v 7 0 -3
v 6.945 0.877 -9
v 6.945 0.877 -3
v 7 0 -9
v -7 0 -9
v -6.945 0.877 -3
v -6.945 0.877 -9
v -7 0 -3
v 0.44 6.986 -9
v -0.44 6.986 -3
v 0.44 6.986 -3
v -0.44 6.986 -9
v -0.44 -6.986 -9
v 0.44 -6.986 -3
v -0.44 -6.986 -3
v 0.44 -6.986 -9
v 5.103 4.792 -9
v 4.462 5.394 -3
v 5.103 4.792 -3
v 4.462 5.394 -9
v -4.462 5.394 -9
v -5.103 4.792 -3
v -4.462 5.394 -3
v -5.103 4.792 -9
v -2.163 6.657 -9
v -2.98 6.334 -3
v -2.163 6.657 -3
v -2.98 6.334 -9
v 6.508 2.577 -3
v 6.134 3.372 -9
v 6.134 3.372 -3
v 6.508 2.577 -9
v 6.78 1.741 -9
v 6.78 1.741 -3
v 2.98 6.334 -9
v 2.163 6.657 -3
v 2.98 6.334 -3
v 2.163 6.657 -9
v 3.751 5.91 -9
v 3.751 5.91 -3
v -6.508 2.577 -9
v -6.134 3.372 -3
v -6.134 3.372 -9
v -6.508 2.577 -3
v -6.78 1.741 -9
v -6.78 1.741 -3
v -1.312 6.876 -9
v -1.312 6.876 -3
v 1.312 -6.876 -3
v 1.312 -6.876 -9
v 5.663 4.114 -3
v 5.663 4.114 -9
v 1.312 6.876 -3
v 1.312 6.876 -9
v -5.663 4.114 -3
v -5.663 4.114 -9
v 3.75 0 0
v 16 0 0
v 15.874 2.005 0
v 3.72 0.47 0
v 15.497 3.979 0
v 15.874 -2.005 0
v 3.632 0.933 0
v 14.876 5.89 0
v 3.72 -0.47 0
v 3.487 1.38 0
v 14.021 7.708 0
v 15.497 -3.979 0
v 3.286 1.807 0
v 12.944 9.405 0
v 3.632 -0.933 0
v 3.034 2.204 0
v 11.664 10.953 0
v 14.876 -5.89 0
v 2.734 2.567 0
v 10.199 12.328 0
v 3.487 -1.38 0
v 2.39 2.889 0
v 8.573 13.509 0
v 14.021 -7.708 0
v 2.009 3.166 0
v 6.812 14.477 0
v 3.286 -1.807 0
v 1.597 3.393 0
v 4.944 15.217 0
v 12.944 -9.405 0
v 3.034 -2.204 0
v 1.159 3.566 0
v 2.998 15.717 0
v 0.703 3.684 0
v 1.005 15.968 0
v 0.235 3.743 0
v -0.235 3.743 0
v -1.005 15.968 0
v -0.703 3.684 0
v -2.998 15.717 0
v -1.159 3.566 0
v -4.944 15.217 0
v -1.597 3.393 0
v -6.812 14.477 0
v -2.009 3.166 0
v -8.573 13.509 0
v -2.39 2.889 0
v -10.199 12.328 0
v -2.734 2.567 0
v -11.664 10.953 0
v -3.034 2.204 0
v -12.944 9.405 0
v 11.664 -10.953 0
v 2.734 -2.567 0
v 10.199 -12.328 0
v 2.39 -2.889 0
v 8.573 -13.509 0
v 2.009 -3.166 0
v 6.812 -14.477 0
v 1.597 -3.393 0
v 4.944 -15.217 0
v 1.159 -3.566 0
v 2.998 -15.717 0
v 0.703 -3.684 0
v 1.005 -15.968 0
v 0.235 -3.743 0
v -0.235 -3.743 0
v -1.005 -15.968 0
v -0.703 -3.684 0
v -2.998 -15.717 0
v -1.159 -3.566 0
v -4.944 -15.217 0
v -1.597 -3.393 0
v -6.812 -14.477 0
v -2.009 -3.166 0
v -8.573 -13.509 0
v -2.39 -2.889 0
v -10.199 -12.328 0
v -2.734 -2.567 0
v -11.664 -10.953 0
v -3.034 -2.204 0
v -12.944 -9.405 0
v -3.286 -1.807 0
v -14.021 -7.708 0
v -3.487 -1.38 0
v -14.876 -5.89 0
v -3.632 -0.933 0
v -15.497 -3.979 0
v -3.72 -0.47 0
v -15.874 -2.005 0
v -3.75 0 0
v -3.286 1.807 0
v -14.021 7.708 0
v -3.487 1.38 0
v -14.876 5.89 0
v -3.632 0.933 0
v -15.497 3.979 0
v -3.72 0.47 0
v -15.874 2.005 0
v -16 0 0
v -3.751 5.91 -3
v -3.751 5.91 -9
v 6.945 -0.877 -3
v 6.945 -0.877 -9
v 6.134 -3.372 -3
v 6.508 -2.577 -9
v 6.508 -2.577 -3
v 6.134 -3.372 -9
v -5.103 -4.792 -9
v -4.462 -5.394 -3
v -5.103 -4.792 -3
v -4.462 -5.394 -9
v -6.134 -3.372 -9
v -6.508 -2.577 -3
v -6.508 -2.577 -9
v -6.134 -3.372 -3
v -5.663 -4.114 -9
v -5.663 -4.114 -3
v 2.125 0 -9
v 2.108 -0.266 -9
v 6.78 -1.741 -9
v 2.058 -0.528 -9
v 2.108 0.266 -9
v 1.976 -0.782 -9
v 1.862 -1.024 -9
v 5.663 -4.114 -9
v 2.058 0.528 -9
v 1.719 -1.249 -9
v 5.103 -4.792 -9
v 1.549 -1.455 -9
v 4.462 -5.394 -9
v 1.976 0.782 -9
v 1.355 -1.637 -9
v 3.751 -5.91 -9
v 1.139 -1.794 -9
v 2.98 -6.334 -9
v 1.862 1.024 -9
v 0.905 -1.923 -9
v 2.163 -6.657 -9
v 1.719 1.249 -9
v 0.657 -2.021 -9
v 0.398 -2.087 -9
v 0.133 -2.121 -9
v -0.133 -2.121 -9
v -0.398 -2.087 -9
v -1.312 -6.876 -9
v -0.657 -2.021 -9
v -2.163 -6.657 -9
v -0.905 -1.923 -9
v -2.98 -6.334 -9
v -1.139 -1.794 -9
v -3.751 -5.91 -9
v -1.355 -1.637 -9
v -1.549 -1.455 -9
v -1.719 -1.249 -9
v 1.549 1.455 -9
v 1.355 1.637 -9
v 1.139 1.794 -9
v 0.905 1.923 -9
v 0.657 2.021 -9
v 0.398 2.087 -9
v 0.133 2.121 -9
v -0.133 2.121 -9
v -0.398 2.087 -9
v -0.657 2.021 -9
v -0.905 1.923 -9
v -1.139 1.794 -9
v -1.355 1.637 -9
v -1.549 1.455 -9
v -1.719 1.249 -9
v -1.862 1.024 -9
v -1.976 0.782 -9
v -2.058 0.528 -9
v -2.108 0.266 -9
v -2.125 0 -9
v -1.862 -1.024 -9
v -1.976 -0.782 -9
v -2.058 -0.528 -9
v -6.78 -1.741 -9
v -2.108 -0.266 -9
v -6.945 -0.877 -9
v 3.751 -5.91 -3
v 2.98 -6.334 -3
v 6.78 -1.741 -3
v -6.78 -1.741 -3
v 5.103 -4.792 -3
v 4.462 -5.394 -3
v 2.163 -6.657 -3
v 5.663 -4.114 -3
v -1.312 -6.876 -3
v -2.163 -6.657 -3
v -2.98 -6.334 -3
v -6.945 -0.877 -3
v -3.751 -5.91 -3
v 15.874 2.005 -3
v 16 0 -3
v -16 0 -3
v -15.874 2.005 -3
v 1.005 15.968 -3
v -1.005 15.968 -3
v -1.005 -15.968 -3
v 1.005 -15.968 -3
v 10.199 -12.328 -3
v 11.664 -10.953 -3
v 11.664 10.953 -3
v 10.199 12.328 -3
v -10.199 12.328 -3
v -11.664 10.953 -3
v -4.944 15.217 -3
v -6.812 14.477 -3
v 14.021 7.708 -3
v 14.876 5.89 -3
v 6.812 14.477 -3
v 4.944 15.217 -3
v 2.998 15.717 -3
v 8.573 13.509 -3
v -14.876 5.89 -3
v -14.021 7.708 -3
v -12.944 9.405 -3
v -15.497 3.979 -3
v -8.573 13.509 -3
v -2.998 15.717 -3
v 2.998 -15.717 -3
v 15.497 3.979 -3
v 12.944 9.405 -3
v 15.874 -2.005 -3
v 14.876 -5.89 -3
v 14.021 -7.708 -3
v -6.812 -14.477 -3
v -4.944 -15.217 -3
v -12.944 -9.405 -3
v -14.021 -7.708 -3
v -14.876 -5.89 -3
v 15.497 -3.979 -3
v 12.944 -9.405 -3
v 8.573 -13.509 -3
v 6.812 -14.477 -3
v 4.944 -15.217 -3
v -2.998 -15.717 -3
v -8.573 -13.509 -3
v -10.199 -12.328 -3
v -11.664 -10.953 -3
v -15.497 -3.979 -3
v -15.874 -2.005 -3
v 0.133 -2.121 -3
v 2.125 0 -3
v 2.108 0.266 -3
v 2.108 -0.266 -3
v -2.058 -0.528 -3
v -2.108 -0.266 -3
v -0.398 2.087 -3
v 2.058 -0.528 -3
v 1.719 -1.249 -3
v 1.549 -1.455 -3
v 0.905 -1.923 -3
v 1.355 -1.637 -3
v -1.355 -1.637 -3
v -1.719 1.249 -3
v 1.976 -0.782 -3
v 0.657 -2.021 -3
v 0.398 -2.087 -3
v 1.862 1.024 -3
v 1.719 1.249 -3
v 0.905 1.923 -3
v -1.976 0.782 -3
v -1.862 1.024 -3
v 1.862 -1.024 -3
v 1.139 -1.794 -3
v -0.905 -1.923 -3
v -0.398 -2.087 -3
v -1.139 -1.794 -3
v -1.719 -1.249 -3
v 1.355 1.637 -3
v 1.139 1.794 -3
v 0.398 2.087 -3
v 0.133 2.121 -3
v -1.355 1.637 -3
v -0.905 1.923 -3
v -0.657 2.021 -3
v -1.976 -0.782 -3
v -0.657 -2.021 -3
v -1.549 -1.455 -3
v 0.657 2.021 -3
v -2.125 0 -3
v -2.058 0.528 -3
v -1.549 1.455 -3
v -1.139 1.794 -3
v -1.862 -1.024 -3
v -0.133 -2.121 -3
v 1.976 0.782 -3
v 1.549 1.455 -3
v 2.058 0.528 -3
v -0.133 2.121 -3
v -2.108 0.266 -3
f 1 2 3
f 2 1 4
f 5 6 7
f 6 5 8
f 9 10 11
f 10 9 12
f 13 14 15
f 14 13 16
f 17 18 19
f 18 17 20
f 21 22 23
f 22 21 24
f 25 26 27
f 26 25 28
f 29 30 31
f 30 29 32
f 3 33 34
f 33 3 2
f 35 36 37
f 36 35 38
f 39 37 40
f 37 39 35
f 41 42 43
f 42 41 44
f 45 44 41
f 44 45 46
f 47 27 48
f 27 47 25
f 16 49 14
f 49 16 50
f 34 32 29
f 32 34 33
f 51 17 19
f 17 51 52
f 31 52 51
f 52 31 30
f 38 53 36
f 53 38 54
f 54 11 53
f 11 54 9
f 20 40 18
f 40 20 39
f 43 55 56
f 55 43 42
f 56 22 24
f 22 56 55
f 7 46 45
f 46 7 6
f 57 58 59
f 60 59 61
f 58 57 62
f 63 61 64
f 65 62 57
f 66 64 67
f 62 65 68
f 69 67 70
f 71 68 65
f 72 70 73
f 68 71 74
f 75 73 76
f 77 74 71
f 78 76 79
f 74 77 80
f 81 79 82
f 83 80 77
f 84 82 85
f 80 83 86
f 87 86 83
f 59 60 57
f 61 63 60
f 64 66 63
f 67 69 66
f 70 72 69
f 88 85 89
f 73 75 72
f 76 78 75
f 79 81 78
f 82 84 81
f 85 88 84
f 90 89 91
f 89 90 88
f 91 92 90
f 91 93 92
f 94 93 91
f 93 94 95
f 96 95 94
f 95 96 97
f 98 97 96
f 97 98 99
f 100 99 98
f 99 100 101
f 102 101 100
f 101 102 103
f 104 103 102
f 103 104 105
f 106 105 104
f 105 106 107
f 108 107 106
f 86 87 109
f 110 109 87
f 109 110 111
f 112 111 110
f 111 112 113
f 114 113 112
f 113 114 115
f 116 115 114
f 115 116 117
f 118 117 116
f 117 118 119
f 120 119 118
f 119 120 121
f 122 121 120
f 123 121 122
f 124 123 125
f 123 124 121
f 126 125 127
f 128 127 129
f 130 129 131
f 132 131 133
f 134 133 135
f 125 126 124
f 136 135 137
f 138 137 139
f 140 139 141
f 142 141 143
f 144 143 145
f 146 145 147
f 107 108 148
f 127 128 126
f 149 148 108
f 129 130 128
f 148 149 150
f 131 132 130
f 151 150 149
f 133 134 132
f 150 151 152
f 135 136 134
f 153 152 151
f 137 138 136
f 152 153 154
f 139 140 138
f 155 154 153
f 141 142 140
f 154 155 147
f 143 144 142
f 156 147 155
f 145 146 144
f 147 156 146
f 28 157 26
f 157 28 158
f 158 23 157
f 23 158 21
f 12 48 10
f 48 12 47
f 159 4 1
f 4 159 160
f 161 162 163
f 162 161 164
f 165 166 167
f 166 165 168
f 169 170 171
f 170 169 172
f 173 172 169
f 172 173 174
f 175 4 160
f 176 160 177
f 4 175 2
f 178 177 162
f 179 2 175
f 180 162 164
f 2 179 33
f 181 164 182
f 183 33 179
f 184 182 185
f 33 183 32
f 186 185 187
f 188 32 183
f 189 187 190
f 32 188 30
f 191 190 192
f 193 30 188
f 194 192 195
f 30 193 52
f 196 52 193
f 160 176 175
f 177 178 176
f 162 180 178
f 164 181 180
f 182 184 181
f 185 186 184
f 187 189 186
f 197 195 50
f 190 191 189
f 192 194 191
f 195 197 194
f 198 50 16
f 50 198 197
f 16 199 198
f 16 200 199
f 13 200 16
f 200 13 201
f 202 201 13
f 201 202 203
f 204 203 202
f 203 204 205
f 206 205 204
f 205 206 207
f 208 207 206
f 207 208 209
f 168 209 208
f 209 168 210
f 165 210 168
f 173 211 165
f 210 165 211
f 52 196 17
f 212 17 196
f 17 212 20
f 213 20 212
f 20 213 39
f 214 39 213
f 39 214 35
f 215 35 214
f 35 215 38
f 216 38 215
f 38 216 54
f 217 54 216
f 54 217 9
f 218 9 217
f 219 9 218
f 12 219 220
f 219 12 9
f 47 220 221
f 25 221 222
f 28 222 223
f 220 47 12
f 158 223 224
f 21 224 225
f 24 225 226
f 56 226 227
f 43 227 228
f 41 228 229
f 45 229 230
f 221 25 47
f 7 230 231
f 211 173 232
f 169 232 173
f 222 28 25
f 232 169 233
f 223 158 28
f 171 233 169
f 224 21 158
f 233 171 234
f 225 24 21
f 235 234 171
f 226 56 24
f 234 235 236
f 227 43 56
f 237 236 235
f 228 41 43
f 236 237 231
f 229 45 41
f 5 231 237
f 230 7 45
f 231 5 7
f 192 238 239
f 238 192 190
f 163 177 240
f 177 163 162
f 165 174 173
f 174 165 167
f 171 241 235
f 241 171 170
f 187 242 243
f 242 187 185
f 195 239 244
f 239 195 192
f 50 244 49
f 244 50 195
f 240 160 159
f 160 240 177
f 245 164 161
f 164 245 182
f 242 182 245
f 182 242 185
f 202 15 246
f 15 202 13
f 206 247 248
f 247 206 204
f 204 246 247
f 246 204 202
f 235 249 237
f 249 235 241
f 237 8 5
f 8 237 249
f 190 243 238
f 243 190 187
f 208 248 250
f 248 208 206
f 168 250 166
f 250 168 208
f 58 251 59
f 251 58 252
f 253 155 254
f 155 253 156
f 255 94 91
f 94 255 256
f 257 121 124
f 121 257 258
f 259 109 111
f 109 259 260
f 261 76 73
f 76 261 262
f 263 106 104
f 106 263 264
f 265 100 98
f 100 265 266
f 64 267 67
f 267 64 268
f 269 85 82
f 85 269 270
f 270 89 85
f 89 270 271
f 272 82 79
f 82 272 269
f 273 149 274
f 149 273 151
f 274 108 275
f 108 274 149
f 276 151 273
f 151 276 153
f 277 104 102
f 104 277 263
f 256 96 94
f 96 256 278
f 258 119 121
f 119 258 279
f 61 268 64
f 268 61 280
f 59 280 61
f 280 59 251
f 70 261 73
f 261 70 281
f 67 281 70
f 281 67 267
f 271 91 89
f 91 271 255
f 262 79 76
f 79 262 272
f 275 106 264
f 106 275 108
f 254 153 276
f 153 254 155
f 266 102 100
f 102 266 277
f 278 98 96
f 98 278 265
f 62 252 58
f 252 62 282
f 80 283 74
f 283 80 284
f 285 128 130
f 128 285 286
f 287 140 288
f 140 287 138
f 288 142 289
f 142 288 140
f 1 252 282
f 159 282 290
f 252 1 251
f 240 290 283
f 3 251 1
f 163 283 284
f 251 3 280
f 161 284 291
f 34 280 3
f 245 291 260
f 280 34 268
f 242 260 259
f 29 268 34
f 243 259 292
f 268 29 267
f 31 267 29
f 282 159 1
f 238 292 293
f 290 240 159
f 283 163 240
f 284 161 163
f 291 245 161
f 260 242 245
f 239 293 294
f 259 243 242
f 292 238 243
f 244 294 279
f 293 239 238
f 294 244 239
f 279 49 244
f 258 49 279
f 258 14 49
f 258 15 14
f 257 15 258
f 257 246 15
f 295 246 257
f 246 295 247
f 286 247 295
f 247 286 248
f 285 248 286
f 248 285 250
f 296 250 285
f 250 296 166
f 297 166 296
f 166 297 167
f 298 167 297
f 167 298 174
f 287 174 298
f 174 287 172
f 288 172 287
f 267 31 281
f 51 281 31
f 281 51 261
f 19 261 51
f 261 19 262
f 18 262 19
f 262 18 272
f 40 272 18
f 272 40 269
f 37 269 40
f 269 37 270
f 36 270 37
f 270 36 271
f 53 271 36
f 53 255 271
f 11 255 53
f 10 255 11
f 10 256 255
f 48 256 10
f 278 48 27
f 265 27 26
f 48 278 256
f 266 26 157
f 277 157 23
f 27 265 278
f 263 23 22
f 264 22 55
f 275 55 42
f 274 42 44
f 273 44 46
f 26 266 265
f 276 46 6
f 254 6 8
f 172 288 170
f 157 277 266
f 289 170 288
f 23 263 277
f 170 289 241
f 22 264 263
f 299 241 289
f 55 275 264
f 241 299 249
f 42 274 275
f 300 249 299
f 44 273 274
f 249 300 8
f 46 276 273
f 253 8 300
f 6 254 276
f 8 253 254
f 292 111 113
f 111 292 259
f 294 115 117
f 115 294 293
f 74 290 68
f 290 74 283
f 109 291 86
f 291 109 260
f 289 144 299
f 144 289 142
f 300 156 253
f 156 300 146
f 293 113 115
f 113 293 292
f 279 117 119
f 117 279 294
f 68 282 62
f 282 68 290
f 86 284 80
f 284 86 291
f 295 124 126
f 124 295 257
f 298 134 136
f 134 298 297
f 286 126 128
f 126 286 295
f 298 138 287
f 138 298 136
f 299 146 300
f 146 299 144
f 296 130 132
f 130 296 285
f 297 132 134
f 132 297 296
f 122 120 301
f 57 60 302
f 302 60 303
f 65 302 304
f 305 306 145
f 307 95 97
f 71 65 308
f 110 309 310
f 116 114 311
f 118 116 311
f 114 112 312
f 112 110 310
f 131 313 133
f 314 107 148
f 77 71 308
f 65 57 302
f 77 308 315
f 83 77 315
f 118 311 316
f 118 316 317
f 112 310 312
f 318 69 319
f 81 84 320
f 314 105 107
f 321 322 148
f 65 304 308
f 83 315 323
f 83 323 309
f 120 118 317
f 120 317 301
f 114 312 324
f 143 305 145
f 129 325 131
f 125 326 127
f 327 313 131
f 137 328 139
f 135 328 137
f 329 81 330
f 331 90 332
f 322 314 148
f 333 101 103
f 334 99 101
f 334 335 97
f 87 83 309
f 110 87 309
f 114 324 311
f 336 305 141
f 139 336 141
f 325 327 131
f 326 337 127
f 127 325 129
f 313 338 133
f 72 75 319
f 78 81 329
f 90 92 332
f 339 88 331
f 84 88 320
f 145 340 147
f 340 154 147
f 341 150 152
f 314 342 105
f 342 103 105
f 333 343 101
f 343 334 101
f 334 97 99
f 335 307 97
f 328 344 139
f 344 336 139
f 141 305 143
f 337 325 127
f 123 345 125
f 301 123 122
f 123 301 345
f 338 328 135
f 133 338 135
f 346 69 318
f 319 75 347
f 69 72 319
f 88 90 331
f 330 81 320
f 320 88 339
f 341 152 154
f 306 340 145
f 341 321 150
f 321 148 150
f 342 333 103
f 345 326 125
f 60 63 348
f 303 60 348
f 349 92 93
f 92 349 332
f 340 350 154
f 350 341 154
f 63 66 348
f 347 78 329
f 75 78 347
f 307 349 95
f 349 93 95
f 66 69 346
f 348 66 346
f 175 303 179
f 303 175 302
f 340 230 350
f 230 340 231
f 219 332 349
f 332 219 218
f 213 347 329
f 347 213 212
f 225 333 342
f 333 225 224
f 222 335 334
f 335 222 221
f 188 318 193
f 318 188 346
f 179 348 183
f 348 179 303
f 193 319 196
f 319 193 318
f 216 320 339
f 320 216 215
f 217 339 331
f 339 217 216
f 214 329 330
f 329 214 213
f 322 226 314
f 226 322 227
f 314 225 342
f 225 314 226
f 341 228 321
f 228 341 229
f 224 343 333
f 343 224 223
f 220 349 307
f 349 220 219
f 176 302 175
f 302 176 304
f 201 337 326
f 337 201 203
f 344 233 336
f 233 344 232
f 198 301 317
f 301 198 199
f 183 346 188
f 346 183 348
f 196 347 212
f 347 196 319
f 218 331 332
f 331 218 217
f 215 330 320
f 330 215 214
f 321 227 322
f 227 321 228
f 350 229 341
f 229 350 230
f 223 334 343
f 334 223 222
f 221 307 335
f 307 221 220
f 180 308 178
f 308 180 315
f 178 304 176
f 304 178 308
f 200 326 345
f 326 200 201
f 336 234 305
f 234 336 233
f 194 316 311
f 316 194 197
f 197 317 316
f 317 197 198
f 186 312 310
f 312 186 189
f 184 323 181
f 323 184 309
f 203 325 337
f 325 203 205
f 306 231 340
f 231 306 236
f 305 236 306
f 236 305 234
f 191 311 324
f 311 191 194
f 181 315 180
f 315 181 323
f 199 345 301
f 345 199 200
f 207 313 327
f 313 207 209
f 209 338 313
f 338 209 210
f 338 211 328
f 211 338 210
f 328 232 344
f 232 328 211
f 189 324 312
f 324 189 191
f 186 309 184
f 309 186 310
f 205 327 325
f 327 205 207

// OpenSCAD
$fn = 50;


difference() {
	union() {
		translate(v = [0, 0, -9.0000000000]) {
			cylinder(h = 9, r = 7.0000000000);
		}
		translate(v = [0, 0, -3.0000000000]) {
			cylinder(h = 3, r = 16.0000000000);
		}
	}
	union() {
		translate(v = [0, 0, 0]) {
			rotate(a = [0, 0, 0]) {
				difference() {
					union() {
						#translate(v = [0, 0, -9.0000000000]) {
							cylinder(h = 9, r = 2.0000000000);
						}
						#translate(v = [0, 0, -3]) {
							cylinder(h = 3, r = 7.0000000000, r1 = 2.1250000000, r2 = 3.7500000000);
						}
						#translate(v = [0, 0, -9.0000000000]) {
							cylinder(h = 9, r = 2.1250000000);
						}
						#translate(v = [0, 0, -9.0000000000]) {
							cylinder(h = 9, r = 2.0000000000);
						}
					}
					union();
				}
			}
		}
	}
}
